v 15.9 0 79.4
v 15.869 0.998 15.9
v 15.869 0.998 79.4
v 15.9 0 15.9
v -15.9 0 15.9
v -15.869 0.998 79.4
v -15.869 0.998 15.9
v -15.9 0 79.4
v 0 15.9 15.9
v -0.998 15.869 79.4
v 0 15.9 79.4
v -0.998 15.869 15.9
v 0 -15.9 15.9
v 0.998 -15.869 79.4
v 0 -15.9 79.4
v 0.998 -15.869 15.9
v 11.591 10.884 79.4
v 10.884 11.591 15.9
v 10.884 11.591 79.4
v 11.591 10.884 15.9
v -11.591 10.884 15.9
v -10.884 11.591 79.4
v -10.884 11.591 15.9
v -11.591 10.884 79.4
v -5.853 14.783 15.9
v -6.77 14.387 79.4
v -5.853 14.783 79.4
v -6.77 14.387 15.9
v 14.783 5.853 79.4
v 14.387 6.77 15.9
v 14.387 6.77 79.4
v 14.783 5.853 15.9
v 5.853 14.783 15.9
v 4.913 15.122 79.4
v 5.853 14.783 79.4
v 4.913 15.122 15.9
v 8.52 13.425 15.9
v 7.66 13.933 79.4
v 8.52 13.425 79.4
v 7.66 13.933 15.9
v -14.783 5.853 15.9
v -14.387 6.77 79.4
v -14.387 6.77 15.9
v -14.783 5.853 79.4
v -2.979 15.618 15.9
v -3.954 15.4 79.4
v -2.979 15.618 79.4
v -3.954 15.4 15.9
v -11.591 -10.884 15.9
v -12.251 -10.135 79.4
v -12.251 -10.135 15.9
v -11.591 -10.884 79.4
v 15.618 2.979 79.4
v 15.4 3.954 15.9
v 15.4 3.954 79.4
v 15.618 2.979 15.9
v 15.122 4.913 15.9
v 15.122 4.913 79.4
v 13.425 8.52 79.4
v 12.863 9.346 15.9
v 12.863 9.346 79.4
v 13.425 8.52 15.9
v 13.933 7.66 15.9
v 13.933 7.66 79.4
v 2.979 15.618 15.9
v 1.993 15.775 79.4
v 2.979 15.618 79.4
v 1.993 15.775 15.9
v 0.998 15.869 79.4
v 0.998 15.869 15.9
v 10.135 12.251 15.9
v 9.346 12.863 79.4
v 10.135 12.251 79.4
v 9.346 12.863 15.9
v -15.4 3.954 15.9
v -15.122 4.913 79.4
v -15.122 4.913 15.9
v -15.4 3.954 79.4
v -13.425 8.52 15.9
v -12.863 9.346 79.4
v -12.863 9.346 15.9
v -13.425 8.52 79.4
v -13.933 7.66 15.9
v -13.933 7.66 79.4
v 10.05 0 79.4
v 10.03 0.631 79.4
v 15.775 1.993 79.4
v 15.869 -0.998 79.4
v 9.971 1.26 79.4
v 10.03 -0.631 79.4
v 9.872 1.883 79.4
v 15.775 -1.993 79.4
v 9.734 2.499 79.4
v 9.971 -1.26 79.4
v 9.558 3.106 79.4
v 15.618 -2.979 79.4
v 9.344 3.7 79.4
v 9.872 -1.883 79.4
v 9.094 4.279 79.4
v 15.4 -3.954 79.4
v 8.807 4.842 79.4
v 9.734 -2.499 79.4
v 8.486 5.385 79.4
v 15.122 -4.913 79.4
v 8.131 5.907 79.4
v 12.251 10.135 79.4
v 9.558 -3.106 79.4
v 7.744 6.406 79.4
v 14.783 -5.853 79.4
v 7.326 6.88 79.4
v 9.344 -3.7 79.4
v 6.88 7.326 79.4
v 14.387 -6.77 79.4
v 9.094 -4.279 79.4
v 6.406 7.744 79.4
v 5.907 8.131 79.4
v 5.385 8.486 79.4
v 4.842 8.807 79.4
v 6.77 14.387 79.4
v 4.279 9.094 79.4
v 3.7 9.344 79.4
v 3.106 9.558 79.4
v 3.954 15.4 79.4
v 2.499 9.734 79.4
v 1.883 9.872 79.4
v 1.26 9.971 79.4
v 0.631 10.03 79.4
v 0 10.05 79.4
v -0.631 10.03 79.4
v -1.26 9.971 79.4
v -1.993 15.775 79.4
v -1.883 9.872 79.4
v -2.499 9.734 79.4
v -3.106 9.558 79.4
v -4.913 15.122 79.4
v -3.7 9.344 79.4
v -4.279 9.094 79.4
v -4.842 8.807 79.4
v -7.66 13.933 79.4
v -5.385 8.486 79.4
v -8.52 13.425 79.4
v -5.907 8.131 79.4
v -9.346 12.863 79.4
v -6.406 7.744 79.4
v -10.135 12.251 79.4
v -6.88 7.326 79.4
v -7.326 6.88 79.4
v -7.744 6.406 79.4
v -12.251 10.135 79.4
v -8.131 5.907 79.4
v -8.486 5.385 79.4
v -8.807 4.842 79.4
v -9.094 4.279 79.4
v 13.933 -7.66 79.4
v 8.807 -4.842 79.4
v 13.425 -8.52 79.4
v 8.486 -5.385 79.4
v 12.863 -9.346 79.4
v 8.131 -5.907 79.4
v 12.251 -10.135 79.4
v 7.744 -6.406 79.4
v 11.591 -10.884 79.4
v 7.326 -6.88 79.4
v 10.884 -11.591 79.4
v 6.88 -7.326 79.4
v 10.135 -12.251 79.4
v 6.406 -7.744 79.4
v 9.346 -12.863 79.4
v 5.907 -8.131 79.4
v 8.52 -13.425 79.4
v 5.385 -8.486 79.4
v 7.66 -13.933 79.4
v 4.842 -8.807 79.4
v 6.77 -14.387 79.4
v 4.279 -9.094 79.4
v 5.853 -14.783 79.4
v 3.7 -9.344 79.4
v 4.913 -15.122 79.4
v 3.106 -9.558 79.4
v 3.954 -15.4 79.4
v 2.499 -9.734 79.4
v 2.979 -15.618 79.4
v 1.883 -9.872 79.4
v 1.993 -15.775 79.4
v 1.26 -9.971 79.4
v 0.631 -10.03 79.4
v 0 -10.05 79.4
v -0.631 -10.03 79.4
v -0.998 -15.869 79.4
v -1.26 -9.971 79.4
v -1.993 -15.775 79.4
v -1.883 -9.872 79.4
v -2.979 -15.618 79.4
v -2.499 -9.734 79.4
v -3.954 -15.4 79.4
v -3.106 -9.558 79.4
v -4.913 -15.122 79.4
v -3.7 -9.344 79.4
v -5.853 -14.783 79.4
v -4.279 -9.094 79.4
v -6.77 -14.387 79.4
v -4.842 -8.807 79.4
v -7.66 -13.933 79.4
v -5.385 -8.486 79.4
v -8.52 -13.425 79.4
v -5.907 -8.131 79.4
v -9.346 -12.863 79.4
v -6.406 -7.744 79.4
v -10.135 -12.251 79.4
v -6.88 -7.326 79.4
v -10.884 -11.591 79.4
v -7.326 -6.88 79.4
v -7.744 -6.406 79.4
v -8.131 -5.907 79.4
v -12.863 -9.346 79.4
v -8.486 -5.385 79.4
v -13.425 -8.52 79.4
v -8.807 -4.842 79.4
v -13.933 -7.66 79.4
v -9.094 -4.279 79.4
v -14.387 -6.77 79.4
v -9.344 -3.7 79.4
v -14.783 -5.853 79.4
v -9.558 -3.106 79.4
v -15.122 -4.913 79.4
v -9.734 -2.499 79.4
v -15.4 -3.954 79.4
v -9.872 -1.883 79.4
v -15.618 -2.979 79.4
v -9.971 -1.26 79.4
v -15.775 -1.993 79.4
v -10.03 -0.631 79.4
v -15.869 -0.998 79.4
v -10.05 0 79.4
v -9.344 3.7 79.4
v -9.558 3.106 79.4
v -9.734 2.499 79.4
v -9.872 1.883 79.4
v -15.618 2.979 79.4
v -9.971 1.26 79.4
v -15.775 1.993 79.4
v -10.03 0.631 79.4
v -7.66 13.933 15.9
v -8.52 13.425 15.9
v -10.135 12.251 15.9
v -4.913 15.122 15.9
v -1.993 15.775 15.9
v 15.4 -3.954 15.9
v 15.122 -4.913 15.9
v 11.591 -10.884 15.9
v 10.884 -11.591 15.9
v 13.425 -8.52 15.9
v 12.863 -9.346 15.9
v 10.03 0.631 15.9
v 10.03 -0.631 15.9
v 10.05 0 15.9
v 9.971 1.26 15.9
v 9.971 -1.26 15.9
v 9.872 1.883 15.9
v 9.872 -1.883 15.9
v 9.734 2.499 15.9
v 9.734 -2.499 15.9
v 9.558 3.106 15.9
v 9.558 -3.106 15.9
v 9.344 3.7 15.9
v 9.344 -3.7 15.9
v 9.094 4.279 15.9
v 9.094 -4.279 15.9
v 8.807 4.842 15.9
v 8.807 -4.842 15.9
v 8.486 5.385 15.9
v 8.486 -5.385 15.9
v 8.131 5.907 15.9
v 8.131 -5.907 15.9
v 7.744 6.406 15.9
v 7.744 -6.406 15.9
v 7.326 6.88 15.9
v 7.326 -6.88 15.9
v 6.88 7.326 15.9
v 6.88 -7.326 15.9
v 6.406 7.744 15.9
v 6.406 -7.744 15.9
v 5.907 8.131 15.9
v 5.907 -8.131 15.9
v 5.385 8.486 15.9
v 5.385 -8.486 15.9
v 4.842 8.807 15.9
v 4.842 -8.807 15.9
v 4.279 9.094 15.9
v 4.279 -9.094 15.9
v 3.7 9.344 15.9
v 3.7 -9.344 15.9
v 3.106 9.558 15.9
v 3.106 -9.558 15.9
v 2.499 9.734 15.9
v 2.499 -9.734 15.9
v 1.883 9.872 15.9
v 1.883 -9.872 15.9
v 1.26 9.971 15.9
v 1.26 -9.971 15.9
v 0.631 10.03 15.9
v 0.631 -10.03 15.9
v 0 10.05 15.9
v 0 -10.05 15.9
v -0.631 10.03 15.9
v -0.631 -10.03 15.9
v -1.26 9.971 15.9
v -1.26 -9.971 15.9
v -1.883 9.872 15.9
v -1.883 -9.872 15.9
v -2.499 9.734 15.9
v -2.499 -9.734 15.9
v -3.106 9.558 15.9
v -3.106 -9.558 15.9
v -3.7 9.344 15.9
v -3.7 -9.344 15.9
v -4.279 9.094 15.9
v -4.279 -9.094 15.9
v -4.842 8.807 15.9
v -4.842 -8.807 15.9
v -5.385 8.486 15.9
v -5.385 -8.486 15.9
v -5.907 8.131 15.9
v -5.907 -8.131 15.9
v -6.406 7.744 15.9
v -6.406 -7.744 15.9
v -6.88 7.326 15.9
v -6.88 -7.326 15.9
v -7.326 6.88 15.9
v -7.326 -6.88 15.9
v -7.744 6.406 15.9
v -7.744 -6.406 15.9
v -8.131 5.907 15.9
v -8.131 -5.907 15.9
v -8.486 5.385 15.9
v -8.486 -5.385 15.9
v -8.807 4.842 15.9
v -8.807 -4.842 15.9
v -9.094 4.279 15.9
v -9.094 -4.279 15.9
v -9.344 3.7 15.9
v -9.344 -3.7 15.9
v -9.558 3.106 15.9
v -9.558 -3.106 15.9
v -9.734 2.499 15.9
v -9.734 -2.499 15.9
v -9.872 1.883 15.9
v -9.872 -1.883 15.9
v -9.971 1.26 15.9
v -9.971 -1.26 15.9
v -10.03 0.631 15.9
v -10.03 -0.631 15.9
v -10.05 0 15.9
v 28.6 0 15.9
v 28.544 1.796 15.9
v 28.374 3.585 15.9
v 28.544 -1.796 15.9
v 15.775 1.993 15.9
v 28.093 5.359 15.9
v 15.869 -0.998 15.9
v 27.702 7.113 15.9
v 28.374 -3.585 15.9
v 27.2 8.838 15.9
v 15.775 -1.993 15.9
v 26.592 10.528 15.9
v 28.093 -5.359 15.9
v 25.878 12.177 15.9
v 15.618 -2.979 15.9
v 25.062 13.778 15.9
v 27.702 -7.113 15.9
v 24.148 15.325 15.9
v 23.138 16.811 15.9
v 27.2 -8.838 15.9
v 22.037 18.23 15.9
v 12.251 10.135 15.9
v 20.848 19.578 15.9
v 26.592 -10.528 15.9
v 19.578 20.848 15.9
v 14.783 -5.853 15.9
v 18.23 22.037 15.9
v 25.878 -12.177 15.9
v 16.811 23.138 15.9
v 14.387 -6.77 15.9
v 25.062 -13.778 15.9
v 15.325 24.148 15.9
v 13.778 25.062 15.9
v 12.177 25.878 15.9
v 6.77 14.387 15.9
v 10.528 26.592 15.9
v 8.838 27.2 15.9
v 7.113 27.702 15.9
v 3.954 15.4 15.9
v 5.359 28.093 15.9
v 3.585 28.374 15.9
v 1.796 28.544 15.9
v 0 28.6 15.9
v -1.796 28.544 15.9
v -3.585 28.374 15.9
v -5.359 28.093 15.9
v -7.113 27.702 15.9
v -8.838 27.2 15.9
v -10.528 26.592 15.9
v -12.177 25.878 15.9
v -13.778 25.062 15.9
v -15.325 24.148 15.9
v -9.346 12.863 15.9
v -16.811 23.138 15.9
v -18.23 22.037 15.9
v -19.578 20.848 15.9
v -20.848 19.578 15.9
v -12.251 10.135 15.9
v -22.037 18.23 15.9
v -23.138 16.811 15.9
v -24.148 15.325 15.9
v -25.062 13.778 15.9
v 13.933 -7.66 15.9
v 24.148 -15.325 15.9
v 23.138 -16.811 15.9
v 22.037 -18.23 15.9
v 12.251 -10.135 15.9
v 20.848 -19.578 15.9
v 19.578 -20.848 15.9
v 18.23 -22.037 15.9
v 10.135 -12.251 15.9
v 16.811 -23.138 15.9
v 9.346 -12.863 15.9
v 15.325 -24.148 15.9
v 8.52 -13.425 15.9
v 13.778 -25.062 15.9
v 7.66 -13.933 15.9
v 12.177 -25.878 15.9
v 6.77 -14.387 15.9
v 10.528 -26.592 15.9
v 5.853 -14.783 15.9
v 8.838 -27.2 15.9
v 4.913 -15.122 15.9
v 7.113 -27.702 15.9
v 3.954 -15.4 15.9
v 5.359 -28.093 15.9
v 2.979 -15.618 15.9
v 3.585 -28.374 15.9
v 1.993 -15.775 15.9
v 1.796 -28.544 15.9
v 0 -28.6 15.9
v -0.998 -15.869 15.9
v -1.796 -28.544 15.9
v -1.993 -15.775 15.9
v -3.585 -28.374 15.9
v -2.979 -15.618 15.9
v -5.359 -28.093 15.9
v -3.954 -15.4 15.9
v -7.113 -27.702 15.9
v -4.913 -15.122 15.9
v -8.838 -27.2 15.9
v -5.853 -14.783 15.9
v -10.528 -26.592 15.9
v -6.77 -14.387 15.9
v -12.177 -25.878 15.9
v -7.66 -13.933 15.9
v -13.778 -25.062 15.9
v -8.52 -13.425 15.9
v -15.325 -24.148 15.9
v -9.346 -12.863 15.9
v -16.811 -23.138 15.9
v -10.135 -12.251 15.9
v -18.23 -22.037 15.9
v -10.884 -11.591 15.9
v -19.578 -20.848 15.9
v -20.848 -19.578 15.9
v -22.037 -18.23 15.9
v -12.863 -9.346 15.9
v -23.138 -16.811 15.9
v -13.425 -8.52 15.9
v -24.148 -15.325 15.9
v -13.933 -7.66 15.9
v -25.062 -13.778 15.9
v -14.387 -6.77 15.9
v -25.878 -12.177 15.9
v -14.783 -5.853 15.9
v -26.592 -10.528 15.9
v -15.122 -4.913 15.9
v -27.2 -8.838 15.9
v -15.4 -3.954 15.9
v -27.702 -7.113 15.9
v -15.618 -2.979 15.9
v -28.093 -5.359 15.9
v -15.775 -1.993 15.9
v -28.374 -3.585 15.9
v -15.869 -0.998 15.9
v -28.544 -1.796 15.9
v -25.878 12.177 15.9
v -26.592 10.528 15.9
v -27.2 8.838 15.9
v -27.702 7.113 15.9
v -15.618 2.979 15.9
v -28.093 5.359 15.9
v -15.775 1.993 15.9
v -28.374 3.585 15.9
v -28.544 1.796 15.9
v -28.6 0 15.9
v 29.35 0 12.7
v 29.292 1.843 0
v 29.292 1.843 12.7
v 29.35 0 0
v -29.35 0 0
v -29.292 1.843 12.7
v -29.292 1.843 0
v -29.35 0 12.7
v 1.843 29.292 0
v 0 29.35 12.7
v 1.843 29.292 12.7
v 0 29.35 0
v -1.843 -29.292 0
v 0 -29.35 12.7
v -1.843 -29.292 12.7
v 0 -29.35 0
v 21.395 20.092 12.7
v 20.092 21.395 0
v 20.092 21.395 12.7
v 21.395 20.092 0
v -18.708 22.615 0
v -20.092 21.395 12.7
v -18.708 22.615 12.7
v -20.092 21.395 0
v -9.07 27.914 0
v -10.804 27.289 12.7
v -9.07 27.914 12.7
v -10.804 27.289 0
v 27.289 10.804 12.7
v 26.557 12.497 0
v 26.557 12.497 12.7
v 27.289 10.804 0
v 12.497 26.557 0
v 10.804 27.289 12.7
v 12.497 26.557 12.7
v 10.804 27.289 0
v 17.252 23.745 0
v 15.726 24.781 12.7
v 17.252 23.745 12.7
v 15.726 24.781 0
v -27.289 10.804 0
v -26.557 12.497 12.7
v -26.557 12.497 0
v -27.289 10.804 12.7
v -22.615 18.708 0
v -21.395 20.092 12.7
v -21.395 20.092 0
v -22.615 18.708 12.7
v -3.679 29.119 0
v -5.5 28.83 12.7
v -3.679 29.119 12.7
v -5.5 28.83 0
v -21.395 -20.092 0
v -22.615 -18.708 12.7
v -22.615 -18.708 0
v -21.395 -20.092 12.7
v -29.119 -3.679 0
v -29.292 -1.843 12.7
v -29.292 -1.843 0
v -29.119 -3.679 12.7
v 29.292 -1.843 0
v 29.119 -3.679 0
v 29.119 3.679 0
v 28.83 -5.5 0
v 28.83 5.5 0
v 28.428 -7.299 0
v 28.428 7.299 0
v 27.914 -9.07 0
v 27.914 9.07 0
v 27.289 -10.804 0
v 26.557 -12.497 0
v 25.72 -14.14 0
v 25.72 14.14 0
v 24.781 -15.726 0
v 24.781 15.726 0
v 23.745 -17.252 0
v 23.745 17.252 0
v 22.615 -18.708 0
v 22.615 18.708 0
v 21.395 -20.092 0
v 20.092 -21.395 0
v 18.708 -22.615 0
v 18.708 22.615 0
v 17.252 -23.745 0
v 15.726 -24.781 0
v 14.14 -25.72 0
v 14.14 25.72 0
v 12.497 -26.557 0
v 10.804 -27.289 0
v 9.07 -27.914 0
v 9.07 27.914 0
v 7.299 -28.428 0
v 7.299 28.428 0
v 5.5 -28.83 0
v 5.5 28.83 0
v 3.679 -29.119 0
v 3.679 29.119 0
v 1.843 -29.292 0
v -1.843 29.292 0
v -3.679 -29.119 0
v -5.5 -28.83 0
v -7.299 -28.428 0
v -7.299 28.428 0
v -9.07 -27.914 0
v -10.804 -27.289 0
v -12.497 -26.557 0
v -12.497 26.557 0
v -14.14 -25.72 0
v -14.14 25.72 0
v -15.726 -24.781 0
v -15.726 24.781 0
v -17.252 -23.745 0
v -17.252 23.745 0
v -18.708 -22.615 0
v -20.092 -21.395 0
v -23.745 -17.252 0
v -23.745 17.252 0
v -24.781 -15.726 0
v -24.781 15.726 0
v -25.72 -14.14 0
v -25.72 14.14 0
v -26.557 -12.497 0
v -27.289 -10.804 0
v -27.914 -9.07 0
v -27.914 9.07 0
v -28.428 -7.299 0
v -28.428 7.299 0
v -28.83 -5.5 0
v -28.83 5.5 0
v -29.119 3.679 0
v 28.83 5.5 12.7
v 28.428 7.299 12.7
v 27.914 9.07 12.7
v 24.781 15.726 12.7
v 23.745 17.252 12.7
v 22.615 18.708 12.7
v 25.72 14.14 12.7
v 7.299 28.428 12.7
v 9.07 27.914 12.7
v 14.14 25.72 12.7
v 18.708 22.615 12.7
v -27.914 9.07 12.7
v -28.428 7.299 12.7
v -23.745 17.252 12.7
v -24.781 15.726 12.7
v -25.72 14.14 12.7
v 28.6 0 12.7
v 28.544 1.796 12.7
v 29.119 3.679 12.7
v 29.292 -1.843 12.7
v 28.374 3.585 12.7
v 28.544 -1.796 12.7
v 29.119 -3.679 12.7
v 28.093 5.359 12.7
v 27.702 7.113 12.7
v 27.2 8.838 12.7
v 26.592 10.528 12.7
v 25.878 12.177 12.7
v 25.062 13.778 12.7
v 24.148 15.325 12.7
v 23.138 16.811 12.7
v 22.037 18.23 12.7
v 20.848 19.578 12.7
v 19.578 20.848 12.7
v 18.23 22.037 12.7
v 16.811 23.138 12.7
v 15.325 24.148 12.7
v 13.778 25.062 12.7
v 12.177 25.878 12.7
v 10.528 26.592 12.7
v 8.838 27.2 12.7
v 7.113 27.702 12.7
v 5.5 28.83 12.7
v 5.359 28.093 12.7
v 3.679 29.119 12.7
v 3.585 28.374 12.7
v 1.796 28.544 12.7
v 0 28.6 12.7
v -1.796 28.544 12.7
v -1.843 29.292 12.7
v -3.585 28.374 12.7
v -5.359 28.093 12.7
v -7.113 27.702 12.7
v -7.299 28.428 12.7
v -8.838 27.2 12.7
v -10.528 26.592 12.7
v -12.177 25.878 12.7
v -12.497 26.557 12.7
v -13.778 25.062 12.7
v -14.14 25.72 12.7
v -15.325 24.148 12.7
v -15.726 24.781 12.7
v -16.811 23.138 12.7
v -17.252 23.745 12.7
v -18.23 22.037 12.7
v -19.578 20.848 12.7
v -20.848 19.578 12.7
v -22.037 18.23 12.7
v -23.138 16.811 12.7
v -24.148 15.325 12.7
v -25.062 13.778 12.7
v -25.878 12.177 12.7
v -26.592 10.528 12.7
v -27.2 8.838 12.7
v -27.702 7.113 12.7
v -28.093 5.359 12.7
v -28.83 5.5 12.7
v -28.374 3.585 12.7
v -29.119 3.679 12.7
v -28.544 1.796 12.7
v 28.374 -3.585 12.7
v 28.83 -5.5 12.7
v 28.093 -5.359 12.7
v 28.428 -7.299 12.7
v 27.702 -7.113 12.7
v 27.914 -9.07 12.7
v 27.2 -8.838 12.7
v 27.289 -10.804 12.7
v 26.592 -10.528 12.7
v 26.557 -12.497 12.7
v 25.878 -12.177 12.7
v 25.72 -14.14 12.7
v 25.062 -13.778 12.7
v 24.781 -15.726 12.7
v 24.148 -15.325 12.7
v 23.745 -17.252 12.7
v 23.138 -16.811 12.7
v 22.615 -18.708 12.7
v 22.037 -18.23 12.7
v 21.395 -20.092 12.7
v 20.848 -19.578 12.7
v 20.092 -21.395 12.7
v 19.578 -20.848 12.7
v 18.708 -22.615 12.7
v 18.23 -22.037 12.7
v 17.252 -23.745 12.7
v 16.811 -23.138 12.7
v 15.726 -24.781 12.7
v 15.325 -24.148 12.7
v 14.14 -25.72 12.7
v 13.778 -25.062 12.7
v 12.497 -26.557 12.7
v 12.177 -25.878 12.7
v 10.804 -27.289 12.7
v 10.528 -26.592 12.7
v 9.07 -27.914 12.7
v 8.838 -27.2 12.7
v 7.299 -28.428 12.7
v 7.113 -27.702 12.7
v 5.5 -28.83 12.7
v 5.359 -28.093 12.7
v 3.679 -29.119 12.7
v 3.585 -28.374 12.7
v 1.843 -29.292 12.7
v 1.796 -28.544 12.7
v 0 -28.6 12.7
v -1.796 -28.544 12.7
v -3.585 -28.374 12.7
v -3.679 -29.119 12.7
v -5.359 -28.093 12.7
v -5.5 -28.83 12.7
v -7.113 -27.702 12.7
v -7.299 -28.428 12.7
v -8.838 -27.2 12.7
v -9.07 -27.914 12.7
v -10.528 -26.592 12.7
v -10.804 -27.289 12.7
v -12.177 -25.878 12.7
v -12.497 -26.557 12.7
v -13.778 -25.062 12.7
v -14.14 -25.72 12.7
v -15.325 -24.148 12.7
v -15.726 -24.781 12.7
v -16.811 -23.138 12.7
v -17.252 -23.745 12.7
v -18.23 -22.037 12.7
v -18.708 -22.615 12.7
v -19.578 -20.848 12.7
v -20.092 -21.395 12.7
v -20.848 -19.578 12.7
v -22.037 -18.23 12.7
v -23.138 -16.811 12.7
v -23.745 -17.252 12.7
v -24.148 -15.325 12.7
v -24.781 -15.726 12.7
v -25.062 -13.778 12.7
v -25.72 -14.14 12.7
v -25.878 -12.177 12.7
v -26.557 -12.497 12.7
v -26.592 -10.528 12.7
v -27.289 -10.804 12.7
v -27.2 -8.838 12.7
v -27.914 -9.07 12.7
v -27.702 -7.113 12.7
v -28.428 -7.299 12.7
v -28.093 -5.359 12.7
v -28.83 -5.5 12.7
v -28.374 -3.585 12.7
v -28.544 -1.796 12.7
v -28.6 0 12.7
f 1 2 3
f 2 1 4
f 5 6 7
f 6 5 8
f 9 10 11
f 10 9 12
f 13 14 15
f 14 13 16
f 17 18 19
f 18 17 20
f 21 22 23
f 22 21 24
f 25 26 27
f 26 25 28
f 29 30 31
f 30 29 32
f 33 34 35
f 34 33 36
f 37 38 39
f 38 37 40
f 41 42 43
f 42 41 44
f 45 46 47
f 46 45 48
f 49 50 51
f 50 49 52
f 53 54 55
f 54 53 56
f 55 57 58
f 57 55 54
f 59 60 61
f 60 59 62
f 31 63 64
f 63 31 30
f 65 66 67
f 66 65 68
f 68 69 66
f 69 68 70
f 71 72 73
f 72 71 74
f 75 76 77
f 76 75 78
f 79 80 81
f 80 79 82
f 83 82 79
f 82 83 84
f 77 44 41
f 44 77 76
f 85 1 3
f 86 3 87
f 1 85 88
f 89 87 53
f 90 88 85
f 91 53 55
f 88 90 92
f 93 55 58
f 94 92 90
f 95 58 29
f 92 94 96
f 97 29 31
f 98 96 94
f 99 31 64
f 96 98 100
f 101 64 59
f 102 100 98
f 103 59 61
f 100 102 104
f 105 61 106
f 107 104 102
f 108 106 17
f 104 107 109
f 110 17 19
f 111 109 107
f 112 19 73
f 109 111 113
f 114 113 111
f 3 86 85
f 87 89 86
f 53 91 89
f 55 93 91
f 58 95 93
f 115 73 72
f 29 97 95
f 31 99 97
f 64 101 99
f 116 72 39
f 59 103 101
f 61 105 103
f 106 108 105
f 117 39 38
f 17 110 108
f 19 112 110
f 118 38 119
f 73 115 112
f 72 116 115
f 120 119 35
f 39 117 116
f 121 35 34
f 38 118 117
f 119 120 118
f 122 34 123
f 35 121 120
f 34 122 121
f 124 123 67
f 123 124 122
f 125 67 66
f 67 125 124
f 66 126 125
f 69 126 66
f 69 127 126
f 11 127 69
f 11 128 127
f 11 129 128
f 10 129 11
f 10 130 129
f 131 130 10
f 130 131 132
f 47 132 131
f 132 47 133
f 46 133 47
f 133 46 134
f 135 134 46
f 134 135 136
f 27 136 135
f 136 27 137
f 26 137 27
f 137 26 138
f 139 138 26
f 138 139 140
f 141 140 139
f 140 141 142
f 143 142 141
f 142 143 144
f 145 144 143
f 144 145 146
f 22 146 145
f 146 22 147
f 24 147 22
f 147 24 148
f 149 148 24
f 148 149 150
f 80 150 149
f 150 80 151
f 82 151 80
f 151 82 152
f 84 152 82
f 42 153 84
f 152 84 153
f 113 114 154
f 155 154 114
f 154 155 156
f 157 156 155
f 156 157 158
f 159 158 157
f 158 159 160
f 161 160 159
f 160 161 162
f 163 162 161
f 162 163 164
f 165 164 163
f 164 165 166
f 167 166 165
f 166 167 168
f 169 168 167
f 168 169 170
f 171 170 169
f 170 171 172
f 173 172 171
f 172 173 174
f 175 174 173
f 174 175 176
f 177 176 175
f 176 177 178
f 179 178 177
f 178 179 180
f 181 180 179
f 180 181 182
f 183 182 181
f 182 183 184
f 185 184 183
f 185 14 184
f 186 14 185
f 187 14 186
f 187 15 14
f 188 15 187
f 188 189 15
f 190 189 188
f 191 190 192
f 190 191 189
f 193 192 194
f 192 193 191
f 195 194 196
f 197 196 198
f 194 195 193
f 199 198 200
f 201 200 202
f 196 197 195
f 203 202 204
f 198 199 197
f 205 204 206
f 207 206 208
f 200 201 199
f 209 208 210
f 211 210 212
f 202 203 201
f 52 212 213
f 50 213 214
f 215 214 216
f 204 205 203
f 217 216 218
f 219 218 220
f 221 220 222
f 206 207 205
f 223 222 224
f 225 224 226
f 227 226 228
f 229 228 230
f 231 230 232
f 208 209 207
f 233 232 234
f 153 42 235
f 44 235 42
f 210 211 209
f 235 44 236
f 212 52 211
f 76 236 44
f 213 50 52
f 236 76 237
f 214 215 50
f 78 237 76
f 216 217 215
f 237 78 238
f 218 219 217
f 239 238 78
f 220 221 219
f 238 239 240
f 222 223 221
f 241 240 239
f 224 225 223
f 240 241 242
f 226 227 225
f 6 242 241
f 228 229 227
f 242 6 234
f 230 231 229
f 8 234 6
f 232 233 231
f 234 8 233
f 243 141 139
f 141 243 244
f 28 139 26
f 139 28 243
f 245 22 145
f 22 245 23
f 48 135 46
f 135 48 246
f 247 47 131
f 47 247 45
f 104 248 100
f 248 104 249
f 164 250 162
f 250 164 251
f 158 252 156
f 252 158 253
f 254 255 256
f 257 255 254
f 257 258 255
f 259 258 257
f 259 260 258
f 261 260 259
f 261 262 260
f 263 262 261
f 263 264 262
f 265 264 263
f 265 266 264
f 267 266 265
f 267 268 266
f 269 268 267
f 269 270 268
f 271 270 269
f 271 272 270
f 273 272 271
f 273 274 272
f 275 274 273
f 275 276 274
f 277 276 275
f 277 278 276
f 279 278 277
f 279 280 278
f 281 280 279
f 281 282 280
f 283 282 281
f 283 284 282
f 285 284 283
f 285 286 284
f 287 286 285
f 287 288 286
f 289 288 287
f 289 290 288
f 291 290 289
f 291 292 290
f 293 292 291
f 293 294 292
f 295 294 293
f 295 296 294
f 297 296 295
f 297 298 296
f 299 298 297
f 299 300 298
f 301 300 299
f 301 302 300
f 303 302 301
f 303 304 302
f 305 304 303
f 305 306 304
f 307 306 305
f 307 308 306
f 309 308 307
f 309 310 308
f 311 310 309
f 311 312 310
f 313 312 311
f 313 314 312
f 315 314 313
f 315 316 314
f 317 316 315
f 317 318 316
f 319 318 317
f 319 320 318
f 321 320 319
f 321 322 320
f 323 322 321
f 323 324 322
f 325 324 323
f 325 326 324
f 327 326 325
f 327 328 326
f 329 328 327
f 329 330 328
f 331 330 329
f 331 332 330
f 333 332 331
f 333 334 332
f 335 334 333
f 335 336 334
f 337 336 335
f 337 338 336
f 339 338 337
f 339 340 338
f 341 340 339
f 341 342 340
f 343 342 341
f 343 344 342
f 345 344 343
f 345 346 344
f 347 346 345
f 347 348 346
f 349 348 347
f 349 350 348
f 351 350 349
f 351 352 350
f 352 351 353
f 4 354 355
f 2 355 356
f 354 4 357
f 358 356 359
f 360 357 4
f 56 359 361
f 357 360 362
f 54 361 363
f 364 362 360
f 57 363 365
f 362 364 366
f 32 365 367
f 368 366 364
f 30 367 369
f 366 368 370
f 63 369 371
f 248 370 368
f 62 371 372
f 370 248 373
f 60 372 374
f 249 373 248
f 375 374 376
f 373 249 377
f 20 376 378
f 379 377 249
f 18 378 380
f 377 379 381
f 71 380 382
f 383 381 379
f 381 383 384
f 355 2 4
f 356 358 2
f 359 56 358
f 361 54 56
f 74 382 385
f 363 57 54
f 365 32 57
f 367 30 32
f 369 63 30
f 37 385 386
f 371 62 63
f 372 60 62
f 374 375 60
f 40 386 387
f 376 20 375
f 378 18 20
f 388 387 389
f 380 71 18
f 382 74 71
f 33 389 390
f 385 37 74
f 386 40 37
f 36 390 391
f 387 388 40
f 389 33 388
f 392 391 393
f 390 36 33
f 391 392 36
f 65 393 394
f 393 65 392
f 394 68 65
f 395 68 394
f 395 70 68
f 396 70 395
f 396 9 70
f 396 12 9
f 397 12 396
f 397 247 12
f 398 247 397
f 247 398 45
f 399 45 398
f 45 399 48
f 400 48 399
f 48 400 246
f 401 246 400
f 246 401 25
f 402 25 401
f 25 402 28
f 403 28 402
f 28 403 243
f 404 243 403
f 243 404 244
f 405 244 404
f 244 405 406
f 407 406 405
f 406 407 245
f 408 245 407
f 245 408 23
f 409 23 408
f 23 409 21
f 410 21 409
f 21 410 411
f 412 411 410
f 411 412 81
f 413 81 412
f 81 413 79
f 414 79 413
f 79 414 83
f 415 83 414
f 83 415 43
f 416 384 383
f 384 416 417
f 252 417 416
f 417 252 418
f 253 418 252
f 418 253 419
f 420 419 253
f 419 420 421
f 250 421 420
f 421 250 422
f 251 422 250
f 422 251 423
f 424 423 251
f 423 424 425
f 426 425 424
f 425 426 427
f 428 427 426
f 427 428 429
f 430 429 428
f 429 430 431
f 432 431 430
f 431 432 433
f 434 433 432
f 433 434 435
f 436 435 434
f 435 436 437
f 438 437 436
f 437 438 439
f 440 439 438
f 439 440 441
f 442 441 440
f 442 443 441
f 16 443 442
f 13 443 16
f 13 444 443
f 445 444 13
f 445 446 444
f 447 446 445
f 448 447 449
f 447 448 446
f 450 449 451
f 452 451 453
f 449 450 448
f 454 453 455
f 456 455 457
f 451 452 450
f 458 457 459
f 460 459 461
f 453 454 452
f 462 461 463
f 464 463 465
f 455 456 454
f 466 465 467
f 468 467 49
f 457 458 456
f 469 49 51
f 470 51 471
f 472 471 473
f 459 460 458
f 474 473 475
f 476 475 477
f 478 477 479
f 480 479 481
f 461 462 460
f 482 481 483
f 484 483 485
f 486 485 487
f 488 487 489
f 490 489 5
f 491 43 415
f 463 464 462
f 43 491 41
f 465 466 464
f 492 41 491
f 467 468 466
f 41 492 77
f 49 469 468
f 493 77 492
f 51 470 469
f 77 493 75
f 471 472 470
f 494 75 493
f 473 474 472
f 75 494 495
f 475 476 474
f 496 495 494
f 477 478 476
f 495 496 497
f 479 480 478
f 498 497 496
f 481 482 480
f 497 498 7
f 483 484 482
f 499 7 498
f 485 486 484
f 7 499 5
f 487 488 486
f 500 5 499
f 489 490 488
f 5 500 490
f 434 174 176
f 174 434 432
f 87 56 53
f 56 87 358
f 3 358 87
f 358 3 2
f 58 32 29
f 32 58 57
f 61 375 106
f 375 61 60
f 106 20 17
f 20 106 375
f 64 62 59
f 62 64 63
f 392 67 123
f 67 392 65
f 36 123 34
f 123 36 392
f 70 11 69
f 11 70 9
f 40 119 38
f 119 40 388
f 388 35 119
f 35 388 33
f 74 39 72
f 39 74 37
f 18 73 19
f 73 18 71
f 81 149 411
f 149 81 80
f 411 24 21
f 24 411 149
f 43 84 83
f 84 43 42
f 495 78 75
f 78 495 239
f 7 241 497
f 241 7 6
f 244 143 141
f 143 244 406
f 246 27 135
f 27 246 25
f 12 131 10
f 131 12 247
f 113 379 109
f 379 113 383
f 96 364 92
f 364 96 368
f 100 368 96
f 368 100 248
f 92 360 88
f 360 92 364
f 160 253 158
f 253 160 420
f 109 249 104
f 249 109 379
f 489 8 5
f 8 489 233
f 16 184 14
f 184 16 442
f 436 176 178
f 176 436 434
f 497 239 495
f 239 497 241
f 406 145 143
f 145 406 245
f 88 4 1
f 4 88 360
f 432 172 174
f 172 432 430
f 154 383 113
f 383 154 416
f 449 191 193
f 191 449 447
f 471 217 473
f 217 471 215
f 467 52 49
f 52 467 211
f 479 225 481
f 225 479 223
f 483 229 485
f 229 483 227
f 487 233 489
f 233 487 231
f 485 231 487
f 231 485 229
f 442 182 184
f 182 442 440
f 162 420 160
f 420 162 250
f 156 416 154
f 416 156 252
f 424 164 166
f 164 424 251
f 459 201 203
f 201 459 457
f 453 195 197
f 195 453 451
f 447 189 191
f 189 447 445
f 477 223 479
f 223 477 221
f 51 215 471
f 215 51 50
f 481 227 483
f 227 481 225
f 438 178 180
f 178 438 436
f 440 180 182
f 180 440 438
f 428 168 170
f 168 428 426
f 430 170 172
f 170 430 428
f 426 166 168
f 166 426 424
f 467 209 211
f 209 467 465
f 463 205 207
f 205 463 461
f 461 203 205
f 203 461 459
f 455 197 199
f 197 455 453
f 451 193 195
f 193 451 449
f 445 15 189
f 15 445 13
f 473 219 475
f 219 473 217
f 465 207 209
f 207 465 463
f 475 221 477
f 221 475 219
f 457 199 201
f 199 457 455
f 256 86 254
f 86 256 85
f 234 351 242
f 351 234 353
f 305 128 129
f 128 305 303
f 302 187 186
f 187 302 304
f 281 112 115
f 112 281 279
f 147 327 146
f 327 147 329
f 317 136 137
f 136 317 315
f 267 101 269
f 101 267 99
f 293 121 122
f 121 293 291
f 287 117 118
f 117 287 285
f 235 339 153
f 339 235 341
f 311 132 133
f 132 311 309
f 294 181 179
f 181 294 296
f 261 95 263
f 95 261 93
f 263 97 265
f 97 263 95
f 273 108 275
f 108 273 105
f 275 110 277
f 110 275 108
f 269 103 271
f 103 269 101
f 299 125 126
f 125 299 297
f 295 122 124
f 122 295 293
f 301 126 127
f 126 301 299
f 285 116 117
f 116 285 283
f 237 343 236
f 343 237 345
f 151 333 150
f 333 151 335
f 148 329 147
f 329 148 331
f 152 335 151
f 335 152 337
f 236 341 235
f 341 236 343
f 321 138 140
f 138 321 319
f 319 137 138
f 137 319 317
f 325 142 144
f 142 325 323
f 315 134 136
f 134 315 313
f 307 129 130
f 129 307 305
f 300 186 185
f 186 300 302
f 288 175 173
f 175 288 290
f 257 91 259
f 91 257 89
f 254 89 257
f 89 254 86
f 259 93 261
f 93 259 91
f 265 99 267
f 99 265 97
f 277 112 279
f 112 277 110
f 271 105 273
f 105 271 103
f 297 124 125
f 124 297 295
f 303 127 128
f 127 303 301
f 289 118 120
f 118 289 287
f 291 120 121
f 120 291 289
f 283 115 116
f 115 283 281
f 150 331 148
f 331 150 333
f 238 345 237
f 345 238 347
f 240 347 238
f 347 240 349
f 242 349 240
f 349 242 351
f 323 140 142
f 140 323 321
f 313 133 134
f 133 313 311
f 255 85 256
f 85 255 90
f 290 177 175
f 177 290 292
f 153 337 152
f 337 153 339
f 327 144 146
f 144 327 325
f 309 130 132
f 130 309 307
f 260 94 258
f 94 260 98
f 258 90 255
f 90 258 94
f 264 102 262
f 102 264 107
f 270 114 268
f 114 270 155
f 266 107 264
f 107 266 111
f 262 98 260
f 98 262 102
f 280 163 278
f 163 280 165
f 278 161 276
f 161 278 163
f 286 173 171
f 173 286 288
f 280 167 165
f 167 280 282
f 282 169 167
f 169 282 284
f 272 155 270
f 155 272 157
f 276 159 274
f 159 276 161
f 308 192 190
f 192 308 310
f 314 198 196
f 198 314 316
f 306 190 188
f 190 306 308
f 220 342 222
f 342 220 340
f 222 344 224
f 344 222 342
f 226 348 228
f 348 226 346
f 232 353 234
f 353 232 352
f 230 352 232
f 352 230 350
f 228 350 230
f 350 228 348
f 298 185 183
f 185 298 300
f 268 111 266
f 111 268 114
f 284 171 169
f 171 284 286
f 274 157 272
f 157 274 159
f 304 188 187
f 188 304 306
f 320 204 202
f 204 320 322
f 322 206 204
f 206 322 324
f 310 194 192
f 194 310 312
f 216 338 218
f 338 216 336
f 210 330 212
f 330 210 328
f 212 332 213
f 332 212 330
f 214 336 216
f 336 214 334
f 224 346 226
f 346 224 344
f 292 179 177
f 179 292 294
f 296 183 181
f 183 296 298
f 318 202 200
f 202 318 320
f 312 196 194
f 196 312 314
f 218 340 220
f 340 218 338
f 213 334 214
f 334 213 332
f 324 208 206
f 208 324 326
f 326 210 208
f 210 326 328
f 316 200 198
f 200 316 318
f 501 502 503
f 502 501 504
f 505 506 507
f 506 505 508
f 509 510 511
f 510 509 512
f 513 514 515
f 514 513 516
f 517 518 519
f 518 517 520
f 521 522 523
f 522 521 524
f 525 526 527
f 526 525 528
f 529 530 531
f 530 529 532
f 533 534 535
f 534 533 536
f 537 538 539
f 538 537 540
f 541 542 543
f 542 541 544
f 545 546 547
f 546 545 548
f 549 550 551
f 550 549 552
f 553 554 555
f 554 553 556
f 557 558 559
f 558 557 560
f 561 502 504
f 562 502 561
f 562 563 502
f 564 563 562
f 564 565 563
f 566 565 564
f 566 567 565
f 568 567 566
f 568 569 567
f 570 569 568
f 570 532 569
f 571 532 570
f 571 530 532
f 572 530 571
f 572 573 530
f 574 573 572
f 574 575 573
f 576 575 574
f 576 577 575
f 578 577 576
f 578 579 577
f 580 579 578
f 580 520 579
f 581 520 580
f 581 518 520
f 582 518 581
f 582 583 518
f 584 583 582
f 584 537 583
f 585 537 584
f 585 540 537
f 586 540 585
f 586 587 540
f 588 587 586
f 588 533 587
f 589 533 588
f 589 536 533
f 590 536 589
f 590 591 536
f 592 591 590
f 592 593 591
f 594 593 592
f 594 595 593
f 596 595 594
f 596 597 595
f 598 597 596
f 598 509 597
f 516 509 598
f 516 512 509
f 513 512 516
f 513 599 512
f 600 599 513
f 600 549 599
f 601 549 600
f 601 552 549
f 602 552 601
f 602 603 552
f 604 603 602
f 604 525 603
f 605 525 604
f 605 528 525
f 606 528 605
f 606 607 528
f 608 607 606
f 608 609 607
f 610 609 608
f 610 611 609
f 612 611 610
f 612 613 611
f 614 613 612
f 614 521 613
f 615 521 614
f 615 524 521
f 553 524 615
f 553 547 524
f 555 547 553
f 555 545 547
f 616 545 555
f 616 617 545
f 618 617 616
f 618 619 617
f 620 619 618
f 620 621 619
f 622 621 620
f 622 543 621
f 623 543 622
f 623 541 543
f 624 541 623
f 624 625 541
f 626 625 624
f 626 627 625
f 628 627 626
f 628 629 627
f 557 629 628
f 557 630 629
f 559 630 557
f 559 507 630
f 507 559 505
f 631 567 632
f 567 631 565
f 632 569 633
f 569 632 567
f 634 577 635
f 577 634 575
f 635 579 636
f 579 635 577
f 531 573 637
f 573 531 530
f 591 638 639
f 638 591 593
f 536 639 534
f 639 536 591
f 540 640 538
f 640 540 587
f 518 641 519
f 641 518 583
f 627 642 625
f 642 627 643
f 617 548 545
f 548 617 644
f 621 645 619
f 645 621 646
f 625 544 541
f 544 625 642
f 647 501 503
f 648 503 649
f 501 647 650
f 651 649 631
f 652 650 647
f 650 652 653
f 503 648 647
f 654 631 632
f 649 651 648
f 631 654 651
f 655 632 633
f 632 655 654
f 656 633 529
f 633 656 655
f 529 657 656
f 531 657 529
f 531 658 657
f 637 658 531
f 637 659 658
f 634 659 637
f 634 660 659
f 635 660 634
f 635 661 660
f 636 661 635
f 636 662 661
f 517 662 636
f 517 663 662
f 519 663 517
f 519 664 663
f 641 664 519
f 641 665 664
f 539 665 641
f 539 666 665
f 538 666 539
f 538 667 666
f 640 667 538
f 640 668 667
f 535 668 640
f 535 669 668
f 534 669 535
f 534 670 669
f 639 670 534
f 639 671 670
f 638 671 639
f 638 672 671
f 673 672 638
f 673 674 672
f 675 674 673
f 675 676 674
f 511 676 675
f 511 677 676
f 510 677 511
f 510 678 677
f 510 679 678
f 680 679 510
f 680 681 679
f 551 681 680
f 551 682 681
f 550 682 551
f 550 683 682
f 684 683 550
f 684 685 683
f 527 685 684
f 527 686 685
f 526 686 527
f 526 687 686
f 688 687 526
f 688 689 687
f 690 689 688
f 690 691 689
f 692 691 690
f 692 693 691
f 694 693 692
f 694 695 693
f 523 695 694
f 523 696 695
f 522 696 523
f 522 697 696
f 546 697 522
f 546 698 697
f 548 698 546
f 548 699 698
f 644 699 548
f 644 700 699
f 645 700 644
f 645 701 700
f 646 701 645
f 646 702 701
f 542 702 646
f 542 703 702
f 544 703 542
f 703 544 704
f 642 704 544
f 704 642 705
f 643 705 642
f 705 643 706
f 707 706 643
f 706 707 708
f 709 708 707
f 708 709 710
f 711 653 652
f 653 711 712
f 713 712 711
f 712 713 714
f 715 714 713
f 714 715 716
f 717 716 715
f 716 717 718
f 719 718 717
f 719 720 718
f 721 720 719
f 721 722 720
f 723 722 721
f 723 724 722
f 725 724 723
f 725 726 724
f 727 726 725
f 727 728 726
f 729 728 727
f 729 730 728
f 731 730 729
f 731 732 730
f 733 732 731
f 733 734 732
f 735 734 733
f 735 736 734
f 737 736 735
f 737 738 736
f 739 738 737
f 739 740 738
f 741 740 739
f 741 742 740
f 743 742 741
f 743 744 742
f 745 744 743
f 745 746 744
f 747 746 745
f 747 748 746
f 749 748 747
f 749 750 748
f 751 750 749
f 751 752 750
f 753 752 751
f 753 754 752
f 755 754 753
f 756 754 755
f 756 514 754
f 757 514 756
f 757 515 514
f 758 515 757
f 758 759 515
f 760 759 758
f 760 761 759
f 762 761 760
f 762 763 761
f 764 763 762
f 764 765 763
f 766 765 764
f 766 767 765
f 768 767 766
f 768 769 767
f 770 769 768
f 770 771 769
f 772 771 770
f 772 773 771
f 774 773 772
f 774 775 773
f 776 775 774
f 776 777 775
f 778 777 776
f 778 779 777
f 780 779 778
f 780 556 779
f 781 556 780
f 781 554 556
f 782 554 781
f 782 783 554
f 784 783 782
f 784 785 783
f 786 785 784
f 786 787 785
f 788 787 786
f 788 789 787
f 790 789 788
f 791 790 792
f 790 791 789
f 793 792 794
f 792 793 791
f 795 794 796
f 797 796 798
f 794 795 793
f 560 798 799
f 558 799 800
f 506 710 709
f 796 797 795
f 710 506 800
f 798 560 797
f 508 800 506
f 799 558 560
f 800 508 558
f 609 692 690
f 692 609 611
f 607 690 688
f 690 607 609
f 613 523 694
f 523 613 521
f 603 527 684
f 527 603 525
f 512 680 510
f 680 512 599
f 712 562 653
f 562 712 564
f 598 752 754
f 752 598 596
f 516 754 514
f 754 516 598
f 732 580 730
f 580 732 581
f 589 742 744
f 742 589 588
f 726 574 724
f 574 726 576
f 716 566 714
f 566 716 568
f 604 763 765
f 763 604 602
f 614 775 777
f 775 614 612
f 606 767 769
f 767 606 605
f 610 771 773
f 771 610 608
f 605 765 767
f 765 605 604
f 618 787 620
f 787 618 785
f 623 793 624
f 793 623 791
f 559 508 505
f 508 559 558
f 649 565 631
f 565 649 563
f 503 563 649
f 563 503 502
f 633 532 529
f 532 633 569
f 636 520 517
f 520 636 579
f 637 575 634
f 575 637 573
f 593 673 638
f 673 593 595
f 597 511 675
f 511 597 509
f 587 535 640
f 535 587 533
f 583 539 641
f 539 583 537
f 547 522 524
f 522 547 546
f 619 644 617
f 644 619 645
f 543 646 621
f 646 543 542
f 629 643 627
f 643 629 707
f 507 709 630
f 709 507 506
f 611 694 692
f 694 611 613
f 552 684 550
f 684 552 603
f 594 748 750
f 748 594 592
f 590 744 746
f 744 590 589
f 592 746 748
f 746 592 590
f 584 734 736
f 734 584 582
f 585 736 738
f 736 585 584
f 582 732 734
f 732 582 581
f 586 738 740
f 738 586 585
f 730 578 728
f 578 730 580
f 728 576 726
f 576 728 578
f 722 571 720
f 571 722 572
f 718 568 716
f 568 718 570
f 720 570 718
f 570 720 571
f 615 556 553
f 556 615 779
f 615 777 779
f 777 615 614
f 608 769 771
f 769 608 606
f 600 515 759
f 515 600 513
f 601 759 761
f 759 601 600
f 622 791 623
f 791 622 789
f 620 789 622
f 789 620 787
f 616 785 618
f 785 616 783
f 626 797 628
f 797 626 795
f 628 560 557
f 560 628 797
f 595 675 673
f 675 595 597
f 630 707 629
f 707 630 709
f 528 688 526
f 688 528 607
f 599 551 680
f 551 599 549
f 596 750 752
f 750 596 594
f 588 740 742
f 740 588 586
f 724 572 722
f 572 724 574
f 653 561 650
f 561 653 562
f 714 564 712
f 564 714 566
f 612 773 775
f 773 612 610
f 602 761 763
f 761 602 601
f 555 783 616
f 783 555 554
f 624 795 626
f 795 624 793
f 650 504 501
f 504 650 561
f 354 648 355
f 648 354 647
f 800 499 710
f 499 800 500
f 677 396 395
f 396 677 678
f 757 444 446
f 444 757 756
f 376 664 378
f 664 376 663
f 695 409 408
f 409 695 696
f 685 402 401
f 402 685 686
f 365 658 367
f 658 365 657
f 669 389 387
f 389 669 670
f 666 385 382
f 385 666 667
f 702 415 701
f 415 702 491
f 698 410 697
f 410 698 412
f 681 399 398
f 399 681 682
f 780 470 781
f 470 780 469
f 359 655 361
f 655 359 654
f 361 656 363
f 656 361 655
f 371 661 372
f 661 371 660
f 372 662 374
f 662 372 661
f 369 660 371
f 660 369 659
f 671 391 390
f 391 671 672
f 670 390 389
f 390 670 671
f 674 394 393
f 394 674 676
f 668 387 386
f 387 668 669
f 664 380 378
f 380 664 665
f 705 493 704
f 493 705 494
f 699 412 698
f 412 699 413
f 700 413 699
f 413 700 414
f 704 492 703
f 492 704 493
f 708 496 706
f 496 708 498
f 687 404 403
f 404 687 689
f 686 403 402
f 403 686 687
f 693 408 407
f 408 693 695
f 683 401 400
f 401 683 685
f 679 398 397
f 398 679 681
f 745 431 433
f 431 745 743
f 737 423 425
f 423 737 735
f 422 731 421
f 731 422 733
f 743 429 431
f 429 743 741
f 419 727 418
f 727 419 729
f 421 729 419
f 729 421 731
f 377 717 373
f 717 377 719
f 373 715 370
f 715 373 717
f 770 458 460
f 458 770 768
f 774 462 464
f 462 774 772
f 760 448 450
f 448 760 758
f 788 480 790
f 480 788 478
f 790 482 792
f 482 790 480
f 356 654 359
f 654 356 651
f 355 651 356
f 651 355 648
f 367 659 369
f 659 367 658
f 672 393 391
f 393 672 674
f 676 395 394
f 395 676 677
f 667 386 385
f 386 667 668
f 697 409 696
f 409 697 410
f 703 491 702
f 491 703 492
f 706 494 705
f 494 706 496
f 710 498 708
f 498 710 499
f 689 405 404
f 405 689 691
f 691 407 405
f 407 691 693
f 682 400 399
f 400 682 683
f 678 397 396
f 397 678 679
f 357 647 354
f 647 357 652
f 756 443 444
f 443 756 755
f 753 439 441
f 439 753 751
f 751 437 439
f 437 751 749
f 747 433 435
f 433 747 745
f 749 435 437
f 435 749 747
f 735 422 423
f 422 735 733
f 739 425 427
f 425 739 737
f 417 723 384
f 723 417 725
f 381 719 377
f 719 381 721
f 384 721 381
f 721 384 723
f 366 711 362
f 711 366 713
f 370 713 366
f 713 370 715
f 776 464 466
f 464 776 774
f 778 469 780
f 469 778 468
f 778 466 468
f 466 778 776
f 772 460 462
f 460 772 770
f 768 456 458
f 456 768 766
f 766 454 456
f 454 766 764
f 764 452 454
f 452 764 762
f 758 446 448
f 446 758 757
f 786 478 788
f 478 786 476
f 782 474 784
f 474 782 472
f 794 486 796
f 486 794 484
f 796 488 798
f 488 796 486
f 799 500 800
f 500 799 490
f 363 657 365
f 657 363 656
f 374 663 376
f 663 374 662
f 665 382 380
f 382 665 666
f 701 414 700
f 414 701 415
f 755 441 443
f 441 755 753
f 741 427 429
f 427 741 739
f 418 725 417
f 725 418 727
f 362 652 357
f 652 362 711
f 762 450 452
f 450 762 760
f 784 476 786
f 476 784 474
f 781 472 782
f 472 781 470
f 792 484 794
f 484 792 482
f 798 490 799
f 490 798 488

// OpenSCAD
$fn=100;

// Loom receiver for synchrotron
// per http://www.gbfans.com/wiki/File:Stefan%27s_Proton_Pack_Plans_Page_2.jpg

baseDiameter = 58.7;
baseHeight = 12.7;
spacerDiameter = 57.2;
spacerHeight = 15.9 - baseHeight;
tubeDiameter = 31.8;
tubeHeight = 63.5;
tubeId = 20.1;  // to suit 20 mm conduit

cylinder(d=baseDiameter, h=baseHeight);

translate([0,0,baseHeight])
cylinder(d=spacerDiameter, h=spacerHeight);

difference() {
    translate([0,0,baseHeight + spacerHeight])
    cylinder(d=tubeDiameter, h=tubeHeight);

    translate([0,0,baseHeight + spacerHeight])
    cylinder(d=tubeId, h=tubeHeight + 1);
}
